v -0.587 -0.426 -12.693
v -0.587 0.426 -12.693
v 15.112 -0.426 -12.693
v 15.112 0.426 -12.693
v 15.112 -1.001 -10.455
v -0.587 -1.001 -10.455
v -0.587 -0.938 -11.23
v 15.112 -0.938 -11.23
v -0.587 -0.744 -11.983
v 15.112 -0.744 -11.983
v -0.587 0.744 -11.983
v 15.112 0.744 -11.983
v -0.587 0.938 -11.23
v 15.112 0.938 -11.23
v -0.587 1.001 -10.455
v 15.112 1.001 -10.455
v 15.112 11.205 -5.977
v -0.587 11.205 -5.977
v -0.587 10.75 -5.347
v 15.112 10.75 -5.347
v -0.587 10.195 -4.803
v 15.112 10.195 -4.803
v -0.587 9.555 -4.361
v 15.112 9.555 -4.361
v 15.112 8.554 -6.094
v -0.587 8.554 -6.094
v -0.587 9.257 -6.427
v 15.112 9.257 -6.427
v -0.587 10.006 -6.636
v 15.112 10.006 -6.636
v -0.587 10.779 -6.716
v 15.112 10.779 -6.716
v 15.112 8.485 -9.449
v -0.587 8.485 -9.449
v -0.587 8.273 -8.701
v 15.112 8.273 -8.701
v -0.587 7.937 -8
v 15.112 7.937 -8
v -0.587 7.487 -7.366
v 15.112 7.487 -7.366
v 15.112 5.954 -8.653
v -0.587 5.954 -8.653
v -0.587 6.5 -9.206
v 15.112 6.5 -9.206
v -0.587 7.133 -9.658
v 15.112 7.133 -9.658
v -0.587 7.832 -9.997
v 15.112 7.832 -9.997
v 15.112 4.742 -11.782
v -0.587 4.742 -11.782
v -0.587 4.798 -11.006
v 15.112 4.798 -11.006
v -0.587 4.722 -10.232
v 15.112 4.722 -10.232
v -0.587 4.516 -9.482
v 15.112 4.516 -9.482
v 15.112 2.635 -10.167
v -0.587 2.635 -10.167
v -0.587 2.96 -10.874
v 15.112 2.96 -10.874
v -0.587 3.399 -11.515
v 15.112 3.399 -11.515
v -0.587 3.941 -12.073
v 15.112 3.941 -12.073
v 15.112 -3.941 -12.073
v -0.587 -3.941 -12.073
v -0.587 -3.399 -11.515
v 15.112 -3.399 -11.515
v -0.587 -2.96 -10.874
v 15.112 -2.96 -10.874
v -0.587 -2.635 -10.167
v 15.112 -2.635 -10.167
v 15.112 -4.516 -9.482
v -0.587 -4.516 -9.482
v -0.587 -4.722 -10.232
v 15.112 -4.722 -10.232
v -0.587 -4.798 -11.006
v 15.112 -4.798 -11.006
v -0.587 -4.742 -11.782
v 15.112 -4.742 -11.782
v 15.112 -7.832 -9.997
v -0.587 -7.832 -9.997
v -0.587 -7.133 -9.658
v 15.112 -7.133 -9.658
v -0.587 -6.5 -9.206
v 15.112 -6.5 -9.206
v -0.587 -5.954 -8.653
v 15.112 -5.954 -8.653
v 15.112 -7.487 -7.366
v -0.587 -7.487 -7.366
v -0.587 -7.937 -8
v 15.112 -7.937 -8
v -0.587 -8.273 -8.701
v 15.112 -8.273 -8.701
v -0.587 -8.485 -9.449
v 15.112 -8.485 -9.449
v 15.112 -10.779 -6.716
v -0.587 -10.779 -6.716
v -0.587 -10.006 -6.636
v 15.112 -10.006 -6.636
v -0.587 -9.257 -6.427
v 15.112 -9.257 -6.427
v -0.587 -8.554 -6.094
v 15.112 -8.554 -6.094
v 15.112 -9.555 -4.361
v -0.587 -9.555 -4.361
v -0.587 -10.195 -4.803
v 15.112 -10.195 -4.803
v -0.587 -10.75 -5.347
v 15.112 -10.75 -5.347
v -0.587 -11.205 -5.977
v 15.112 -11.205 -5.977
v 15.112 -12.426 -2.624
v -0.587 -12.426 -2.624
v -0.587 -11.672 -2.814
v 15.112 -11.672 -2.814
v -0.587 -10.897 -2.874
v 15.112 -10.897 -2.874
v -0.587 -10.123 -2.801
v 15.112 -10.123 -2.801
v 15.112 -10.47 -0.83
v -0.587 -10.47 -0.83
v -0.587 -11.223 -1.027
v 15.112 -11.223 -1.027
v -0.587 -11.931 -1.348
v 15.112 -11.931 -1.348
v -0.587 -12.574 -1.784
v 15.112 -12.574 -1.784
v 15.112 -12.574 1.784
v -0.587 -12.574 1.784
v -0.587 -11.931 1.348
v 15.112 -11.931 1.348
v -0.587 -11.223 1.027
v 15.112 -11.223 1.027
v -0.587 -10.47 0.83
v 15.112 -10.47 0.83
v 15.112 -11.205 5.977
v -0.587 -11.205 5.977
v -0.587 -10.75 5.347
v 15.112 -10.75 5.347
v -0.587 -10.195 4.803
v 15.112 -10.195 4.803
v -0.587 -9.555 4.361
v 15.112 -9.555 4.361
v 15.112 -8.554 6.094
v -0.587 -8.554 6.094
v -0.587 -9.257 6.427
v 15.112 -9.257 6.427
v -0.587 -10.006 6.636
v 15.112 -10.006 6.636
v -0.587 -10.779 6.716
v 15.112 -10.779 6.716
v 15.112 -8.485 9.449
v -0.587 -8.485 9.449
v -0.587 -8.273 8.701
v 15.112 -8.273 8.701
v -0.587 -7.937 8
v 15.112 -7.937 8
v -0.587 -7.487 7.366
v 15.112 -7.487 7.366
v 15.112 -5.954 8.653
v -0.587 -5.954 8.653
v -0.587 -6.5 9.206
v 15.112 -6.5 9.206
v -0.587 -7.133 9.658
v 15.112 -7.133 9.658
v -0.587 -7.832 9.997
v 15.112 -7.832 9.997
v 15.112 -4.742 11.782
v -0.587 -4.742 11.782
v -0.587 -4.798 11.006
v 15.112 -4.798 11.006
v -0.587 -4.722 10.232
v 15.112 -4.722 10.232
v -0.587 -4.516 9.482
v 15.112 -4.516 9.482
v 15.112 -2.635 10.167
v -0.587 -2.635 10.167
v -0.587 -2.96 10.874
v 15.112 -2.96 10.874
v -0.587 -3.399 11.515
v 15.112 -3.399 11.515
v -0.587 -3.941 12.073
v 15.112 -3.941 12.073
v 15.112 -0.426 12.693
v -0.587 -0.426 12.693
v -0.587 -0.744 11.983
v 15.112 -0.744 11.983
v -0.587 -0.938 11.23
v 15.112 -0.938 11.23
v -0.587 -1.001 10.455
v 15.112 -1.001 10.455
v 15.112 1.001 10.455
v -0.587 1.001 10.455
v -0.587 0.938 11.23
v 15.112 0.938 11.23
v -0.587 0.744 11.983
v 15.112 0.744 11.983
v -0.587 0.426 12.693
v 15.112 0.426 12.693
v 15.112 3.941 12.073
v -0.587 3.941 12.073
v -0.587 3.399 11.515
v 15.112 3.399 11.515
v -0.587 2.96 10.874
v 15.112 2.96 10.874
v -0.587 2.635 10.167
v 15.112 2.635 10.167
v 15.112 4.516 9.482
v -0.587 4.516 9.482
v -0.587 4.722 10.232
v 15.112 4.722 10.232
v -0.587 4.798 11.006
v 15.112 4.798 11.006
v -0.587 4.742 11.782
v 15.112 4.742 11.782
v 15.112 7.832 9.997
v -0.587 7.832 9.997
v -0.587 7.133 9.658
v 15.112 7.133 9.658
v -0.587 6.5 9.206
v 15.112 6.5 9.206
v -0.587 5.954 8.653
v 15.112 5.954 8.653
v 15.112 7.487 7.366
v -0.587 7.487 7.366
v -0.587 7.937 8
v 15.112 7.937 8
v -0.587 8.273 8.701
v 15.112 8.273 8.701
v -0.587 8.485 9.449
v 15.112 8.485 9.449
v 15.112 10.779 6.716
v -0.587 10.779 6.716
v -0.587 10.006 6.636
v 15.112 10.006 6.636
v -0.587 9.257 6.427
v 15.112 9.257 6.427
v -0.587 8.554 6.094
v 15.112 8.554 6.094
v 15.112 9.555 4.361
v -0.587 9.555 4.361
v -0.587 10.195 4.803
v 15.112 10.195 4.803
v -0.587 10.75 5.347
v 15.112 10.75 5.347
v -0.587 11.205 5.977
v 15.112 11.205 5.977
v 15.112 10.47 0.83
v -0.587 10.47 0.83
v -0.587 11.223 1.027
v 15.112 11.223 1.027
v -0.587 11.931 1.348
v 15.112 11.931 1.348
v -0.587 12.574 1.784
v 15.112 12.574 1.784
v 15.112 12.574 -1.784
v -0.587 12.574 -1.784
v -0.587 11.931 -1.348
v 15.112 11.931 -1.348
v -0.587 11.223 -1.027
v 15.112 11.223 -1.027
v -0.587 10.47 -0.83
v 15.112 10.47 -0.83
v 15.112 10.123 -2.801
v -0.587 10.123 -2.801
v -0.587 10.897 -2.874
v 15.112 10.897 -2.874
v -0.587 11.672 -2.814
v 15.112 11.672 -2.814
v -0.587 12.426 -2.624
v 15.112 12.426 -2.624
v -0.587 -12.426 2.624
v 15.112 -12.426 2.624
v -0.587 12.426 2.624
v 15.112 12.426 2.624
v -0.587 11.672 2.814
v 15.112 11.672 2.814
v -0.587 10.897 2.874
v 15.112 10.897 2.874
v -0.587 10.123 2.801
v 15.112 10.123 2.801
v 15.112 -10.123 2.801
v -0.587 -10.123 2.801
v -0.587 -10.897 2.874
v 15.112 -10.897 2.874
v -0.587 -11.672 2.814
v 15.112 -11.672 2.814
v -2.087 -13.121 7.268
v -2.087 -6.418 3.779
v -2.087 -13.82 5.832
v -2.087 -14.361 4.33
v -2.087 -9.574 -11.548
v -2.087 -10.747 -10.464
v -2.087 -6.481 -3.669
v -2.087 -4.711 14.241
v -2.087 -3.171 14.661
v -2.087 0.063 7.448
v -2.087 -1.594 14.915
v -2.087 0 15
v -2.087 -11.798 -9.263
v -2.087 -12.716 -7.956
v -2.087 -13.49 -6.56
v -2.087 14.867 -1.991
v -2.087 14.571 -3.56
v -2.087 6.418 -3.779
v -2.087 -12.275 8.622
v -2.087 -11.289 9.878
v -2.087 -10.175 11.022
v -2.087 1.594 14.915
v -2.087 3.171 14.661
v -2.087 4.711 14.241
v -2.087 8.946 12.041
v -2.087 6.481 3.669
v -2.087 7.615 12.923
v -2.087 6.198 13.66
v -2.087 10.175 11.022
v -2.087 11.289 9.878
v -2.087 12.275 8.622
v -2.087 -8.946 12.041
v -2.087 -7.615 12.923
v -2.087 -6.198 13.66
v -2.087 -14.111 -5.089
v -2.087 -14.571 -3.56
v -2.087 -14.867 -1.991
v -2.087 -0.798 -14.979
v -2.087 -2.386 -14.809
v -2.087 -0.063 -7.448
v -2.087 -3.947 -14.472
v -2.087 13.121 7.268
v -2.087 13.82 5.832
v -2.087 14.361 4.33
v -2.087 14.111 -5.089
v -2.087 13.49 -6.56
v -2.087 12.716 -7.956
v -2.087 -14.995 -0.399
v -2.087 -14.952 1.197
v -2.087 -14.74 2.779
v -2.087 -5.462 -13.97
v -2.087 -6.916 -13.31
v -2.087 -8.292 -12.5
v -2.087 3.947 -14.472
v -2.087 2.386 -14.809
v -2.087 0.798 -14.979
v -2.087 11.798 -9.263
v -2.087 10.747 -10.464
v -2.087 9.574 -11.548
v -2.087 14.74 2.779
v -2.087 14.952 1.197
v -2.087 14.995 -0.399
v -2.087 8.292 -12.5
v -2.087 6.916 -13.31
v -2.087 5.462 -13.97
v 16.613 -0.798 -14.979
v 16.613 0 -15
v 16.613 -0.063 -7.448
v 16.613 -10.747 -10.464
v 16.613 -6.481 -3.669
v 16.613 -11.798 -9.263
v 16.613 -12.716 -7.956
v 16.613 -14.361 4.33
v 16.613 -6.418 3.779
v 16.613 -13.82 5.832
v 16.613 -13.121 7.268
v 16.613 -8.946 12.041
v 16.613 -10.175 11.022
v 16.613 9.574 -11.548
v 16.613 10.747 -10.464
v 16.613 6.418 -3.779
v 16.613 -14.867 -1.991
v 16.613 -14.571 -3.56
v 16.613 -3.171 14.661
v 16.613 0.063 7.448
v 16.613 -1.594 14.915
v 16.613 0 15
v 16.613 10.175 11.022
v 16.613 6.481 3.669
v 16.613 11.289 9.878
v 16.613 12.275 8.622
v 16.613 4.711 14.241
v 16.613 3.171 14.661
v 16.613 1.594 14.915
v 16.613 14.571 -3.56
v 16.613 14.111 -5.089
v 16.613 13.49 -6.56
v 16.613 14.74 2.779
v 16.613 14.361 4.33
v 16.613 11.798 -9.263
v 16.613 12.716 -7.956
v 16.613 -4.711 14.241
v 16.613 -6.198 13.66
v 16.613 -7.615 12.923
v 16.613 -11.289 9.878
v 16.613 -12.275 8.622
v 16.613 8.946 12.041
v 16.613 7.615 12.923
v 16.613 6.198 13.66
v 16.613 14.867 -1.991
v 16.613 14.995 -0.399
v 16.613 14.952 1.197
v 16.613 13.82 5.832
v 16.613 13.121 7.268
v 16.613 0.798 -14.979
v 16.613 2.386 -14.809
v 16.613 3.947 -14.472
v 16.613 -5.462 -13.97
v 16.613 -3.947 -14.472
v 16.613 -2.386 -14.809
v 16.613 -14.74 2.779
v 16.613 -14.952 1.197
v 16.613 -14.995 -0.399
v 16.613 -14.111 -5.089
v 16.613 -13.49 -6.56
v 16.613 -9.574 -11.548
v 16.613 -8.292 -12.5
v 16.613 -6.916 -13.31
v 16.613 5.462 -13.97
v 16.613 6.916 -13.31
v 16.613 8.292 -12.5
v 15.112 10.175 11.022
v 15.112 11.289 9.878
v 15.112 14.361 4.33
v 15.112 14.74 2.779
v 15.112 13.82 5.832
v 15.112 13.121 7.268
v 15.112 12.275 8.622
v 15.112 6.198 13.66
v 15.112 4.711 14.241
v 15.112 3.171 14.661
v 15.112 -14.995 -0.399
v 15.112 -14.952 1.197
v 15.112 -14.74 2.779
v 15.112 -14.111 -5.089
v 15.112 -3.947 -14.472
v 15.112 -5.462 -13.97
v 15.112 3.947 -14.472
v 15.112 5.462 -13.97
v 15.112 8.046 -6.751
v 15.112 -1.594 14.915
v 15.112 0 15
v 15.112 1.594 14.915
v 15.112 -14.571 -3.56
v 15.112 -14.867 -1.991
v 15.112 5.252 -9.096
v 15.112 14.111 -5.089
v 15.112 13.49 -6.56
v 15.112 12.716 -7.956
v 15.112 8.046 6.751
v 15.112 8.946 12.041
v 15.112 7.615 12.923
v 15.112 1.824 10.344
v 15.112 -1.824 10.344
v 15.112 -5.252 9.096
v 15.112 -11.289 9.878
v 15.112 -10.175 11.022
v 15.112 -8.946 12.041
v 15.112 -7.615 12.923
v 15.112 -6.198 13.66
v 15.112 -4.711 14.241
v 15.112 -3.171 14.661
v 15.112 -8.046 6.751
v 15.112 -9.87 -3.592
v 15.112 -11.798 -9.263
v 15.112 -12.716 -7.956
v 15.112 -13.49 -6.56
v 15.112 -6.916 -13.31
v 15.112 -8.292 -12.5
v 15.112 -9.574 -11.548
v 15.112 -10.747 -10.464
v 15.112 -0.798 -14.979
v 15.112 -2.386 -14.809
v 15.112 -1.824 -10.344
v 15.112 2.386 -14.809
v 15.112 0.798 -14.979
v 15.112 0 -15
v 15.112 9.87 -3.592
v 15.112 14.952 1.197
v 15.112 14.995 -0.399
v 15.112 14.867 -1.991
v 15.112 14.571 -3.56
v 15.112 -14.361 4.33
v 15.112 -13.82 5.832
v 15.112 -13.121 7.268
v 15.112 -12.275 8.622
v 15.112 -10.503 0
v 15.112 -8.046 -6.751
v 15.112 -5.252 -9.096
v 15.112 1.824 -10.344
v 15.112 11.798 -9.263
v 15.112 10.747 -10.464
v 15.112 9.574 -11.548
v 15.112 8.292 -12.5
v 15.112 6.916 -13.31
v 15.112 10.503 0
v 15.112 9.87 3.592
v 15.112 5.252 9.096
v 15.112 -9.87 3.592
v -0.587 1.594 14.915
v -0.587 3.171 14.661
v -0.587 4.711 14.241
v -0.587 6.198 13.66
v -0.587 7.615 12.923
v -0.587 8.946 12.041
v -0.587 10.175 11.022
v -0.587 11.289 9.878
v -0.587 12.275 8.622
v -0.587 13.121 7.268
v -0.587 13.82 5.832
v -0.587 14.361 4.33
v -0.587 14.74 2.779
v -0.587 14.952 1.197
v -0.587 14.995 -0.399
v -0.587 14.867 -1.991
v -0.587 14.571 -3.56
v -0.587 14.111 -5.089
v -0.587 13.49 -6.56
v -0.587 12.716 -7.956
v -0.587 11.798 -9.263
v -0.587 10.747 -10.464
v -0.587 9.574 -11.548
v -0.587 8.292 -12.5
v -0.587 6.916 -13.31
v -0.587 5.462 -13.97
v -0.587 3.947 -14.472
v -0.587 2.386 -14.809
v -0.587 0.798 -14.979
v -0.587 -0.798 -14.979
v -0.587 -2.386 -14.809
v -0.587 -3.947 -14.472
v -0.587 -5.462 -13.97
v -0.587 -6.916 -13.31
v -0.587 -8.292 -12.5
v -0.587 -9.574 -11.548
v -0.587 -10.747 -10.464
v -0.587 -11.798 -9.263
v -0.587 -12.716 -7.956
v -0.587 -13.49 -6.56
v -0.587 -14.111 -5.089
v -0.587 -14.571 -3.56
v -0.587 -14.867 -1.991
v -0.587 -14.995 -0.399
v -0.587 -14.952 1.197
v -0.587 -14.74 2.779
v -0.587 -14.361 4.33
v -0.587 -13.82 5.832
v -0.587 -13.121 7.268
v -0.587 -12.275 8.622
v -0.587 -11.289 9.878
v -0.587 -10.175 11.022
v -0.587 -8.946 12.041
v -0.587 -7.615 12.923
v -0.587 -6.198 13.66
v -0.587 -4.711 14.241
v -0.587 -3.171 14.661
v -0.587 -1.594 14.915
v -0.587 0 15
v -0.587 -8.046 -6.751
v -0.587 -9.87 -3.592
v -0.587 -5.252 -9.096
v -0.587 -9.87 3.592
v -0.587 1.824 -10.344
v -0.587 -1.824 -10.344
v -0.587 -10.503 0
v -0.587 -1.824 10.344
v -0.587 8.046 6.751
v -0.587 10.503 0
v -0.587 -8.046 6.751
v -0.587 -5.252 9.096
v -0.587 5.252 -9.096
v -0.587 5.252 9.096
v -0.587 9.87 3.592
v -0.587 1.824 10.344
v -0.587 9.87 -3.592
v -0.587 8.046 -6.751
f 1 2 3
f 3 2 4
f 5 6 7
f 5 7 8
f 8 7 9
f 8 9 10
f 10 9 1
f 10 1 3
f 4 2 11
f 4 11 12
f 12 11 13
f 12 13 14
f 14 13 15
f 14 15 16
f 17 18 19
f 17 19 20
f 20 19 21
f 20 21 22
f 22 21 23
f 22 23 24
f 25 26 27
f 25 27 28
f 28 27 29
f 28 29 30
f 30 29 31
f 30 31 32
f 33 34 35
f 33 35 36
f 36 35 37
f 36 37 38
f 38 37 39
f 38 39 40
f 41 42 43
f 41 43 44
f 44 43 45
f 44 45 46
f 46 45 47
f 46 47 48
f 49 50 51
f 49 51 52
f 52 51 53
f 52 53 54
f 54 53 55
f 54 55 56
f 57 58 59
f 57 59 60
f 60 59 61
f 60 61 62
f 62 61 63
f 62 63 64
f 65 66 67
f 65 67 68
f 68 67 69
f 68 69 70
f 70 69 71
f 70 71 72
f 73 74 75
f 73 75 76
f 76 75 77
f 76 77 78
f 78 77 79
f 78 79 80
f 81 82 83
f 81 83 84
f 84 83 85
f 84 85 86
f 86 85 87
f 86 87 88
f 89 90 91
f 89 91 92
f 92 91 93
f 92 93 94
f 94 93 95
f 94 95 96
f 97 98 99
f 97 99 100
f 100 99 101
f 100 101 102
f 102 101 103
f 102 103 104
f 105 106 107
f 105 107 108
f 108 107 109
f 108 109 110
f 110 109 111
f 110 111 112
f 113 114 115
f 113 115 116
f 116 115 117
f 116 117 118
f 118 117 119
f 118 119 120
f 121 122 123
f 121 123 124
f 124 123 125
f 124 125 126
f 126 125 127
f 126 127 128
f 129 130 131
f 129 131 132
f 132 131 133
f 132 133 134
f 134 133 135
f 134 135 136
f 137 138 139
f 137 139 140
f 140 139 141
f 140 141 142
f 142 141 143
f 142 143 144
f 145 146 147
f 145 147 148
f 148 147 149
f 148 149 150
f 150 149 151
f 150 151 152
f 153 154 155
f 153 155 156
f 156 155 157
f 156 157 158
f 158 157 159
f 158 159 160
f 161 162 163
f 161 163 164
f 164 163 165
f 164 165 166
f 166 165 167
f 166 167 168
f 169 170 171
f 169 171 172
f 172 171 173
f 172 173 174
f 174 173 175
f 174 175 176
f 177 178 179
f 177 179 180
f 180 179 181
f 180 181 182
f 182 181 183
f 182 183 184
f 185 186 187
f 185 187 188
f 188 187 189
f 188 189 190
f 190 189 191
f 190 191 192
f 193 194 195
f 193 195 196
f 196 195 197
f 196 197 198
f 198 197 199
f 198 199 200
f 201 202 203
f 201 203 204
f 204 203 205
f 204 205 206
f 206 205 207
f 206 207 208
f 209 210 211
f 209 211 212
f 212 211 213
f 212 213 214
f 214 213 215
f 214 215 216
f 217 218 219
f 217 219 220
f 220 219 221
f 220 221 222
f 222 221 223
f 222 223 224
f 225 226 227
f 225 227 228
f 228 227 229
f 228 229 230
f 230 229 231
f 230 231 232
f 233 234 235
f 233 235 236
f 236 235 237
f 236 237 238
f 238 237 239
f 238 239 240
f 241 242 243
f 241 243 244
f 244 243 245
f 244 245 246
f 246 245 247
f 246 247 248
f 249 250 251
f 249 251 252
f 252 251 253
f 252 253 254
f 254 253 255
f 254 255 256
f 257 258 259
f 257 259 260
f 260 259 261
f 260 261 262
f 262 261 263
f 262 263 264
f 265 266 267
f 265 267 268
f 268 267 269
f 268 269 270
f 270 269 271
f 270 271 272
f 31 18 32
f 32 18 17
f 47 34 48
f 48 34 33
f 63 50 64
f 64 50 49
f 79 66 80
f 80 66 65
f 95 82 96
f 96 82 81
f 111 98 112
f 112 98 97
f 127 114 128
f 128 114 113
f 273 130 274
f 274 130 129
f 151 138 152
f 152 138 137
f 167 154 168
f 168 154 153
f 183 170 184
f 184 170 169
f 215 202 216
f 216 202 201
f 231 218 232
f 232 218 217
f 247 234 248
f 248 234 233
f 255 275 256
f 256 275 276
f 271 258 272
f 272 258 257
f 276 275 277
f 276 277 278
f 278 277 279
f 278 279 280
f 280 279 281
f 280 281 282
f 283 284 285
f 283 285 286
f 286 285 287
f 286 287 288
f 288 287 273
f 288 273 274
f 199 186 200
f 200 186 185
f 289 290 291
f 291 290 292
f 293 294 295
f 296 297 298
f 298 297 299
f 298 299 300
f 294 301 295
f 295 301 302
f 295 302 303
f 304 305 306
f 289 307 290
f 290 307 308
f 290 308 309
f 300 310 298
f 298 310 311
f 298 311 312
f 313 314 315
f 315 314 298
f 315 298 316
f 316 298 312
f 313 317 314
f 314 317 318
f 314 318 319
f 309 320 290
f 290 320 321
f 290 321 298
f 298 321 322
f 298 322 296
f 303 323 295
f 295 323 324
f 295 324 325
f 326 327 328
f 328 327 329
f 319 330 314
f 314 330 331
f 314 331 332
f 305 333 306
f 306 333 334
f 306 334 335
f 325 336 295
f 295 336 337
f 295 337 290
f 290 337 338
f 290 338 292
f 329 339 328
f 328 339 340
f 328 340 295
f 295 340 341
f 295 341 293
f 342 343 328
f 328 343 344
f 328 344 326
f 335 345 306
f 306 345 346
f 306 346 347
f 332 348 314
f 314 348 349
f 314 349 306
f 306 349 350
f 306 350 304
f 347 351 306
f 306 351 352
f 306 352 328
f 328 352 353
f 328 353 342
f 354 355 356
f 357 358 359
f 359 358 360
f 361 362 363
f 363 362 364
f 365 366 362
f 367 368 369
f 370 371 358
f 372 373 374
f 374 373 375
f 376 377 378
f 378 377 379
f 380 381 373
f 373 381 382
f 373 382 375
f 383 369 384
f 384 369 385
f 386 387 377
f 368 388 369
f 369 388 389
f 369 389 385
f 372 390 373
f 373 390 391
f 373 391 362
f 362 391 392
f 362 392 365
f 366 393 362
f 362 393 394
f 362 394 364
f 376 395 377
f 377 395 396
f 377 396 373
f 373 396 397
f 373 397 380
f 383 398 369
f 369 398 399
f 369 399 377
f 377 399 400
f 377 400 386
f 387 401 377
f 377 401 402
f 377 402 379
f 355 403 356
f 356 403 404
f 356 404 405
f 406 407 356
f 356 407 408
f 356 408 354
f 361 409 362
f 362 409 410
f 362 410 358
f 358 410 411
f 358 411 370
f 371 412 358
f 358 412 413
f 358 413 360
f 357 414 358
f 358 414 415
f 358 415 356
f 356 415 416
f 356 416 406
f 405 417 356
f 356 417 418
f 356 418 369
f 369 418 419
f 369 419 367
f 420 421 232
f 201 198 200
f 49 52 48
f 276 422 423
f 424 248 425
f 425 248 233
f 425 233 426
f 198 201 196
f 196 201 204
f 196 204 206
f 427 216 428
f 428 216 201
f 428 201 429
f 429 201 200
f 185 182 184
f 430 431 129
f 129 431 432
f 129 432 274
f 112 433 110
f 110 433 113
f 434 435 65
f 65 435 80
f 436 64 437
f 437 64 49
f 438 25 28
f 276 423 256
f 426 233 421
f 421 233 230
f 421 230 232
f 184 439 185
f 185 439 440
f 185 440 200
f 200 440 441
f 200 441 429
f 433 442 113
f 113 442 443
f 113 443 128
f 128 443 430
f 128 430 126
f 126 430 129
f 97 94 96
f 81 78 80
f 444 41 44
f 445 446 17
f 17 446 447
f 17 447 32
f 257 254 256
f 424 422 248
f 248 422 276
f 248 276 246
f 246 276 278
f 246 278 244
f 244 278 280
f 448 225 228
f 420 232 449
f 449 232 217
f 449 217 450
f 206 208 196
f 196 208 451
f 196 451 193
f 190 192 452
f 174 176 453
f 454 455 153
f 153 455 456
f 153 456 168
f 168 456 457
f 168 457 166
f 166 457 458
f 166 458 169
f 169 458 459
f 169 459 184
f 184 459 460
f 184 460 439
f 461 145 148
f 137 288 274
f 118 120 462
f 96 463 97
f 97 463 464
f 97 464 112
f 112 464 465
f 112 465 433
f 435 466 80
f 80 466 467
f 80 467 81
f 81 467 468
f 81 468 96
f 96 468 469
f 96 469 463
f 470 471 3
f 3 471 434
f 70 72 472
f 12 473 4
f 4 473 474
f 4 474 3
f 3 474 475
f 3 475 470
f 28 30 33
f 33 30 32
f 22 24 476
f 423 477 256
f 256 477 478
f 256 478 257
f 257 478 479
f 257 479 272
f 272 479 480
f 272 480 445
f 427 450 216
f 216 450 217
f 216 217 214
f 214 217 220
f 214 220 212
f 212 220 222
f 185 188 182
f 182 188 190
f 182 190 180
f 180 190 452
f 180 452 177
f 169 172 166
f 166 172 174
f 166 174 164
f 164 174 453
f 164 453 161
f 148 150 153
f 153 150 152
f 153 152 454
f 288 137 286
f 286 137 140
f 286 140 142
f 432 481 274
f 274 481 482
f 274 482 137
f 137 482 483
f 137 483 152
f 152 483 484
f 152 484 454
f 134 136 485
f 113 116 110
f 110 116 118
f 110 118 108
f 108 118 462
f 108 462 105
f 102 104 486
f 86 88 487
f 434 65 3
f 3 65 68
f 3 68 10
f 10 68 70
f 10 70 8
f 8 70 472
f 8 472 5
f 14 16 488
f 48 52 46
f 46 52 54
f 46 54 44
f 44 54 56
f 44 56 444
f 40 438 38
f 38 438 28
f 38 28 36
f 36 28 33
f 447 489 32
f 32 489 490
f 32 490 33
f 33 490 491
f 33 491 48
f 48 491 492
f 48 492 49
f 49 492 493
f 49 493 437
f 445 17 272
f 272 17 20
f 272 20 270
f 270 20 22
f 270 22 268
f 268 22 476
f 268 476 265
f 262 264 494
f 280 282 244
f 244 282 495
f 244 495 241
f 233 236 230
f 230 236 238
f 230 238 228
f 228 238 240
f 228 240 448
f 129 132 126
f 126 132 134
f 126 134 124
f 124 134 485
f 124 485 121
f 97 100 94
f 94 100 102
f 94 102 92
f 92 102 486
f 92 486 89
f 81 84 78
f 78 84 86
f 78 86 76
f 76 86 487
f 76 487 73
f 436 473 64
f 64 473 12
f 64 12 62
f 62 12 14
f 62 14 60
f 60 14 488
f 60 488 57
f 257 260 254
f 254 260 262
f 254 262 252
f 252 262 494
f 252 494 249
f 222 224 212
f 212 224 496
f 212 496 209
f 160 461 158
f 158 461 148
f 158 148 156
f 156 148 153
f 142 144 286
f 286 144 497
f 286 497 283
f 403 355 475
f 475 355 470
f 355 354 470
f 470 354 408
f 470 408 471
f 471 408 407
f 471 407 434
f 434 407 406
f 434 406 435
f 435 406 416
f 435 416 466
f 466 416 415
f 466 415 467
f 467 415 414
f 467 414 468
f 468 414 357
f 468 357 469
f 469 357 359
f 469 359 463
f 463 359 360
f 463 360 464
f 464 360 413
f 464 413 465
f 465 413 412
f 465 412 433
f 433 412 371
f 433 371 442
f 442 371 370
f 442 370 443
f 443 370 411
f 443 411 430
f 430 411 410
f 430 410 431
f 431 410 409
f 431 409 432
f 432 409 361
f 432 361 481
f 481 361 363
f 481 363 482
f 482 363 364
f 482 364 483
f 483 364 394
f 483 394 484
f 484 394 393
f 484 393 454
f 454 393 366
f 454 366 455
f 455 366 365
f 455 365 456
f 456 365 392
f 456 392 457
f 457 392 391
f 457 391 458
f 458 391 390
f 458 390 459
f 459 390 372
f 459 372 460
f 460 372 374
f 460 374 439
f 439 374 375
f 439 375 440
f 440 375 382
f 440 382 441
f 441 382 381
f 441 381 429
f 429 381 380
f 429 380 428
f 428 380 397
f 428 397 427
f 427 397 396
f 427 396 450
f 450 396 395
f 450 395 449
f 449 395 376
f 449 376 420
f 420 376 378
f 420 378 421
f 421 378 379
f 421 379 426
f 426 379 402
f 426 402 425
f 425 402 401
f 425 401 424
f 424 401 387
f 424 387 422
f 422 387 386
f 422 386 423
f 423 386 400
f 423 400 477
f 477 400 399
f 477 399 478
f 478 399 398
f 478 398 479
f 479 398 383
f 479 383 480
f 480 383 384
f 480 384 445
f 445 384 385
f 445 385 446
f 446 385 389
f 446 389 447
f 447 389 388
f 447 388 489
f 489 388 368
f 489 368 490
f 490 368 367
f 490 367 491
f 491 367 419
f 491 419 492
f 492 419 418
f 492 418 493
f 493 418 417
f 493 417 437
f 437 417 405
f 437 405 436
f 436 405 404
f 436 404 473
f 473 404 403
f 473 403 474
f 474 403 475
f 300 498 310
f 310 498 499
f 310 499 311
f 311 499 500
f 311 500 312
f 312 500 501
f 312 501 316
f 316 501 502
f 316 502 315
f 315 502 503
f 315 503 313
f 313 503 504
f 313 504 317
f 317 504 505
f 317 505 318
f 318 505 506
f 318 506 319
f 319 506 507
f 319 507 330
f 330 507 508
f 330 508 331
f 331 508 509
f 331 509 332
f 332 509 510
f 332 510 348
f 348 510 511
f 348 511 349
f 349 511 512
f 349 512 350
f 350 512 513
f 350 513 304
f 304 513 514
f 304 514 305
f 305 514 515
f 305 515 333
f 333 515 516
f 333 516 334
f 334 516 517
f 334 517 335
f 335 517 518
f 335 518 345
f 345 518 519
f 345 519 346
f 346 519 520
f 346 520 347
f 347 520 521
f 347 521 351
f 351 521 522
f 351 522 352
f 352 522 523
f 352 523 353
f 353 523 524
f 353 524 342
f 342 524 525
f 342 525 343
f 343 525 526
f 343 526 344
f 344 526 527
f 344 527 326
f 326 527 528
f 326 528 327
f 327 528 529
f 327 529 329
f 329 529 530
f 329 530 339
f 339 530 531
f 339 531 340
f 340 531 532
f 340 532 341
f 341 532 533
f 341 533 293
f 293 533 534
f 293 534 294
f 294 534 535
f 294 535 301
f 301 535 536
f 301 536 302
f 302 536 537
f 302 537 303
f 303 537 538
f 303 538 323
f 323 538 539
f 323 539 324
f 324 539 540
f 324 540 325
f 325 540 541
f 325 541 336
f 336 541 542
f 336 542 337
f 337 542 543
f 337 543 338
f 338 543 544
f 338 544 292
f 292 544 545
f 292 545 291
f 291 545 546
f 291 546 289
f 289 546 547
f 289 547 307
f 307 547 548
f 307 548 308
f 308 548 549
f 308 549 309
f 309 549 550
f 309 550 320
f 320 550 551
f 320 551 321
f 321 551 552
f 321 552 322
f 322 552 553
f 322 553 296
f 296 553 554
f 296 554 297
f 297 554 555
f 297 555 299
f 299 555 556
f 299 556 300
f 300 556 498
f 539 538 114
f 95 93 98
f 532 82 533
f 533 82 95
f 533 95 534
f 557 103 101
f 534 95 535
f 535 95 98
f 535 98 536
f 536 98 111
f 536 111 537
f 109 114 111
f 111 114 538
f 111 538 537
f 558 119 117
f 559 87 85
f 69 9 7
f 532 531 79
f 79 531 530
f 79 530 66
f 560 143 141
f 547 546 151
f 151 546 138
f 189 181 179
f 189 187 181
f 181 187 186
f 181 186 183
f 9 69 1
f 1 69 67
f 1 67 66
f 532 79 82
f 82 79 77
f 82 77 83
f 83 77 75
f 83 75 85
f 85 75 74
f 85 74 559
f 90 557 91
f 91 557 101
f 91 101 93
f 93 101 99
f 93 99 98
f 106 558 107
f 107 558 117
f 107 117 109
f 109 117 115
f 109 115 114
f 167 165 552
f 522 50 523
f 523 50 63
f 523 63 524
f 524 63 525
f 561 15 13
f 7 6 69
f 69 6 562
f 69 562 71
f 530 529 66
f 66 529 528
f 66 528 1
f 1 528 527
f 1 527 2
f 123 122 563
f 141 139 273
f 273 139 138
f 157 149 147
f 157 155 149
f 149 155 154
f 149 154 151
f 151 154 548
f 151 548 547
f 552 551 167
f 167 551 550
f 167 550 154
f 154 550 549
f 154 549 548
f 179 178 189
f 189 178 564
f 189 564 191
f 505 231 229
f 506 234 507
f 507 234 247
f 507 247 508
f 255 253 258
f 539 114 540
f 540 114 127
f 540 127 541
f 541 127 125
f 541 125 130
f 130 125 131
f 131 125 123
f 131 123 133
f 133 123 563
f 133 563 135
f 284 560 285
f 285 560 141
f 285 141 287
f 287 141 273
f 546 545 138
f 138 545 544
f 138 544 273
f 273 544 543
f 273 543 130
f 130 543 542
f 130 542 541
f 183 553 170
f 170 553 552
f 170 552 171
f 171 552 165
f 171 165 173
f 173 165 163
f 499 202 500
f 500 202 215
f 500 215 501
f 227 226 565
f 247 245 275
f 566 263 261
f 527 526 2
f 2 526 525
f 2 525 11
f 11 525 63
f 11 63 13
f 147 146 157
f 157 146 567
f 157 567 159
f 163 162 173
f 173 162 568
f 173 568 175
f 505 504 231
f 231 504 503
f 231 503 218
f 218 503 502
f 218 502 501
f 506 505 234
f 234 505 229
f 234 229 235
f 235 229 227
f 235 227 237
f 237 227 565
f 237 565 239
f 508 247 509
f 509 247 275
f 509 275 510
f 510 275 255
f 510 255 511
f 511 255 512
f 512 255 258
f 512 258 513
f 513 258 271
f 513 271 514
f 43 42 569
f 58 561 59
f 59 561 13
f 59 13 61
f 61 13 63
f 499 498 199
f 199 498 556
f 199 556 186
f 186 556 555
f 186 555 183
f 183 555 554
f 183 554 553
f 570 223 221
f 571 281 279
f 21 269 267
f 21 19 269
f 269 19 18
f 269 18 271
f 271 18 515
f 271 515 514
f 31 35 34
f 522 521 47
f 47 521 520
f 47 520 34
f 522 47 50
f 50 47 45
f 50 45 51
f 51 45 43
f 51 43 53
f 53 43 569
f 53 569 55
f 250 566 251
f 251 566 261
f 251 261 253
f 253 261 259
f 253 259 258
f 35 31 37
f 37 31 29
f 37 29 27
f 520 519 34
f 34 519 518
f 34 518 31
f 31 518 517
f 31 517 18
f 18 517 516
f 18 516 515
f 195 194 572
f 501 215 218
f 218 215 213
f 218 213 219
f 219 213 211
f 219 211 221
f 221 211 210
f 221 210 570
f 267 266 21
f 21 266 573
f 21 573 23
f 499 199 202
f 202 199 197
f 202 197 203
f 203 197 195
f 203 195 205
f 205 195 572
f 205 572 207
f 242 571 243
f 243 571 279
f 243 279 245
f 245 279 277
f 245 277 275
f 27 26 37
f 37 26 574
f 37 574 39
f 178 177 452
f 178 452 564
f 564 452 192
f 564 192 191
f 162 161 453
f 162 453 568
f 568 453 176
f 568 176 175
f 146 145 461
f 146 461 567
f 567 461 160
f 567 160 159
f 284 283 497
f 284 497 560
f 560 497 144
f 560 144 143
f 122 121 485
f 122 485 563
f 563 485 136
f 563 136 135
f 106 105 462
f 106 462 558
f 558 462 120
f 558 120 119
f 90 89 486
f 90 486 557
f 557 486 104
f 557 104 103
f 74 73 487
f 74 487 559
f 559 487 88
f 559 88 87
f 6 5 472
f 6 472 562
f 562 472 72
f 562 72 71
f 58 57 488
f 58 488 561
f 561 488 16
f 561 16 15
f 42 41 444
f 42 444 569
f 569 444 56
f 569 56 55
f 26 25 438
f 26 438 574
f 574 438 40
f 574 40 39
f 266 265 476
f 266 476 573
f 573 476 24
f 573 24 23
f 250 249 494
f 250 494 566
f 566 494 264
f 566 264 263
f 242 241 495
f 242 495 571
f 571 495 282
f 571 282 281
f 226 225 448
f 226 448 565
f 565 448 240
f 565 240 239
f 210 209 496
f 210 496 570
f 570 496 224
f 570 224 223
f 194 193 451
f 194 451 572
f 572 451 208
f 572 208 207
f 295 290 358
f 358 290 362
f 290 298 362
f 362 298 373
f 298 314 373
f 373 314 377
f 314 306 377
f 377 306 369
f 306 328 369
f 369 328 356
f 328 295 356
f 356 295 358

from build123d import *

# Parameters (mm, degrees)
BOSS_EXTRUDE1_DEPTH      = 4
BOSS_EXTRUDE1_DEPTH_BACK = 13.2
SKETCH2_R                = 15
SKETCH2_R_2              = 7.854644271
BOSS_EXTRUDE2_DEPTH      = 1.5
SKETCH3_R                = 15
SKETCH3_R_2              = 9.60106287
BOSS_EXTRUDE3_DEPTH      = 1.5
BOSS_EXTRUDE4_DEPTH      = 1.5
BOSS_EXTRUDE4_DEPTH_BACK = 16.7
SKETCH5_R                = 10.503090292
CUT_EXTRUDE1_DEPTH       = 29.278790639


# Read off the part's stored shape, not the designer's step: am-4212 18T 20DP 500hex 375 FW.STEP<1>
with BuildPart() as part:
    # Sketch1 → Boss-Extrude1 (new, two sides: drawn at the far end of the back side and taken through both)
    # profile 1 of 19: a face of its own
    with BuildSketch(Plane(origin=(11.1125, 0, 0), x_dir=(0, 0, -1), z_dir=(1, 0, 0)).offset(-BOSS_EXTRUDE1_DEPTH_BACK)):
        with BuildLine():
            ThreePointArc((-12.692845514, 0.426230867), (-12.7, 0), (-12.692845514, -0.426230867))
            ThreePointArc((-12.692845514, -0.426230867), (-12.311027604, -0.61546759), (-11.913249275, -0.768333072))
            ThreePointArc((-11.913249275, -0.768333072), (-11.938, 0), (-11.913249275, 0.768333072))
            ThreePointArc((-11.913249275, 0.768333072), (-12.311027604, 0.61546759), (-12.692845514, 0.426230867))
        make_face()
    # profile 2 of 19: a face of its own
    with BuildSketch(Plane(origin=(11.1125, 0, 0), x_dir=(0, 0, -1), z_dir=(1, 0, 0)).offset(-BOSS_EXTRUDE1_DEPTH_BACK)):
        with BuildLine():
            ThreePointArc((-11.913249275, 0.768333072), (-11.938, 0), (-11.913249275, -0.768333072))
            ThreePointArc((-11.913249275, -0.768333072), (-10.87193442, -0.983463934), (-9.809087715, -0.952242218))
            ThreePointArc((-9.809087715, -0.952242218), (-9.705477367, -1.711337521), (-9.543213362, -2.4600906))
            ThreePointArc((-9.543213362, -2.4600906), (-10.552641024, -2.794266767), (-11.457577821, -3.352574307))
            ThreePointArc((-11.457577821, -3.352574307), (-11.218050507, -4.083036471), (-10.932007046, -4.796568142))
            ThreePointArc((-10.932007046, -4.796568142), (-9.879912073, -4.64257437), (-8.891841322, -4.249720572))
            ThreePointArc((-8.891841322, -4.249720572), (-8.534853559, -4.9276), (-8.126286635, -5.575700185))
            ThreePointArc((-8.126286635, -5.575700185), (-8.96054338, -6.234967657), (-9.619953385, -7.069111745))
            ThreePointArc((-9.619953385, -7.069111745), (-9.145038562, -7.673598484), (-8.632203428, -8.246266305))
            ThreePointArc((-8.632203428, -8.246266305), (-7.696226517, -7.74172182), (-6.902107637, -7.034619905))
            ThreePointArc((-6.902107637, -7.034619905), (-6.334800451, -7.549521196), (-5.729209809, -8.01879804))
            ThreePointArc((-5.729209809, -8.01879804), (-6.287671961, -8.923639429), (-6.622020596, -9.933009978))
            ThreePointArc((-6.622020596, -9.933009978), (-5.969, -10.33861127), (-5.291228679, -10.70134305))
            ThreePointArc((-5.291228679, -10.70134305), (-4.58426246, -9.907103363), (-4.079877906, -8.971040258))
            ThreePointArc((-4.079877906, -8.971040258), (-3.370676917, -9.260858716), (-2.641105726, -9.494710506))
            ThreePointArc((-2.641105726, -9.494710506), (-2.856414507, -10.535988587), (-2.825374393, -11.598840612))
            ThreePointArc((-2.825374393, -11.598840612), (-2.073011945, -11.756634955), (-1.312053661, -11.865679887))
            ThreePointArc((-1.312053661, -11.865679887), (-0.919368693, -10.877542027), (-0.765554687, -9.825420757))
            ThreePointArc((-0.765554687, -9.825420757), (0, -9.8552), (0.765554687, -9.825420757))
            ThreePointArc((0.765554687, -9.825420757), (0.919368693, -10.877542027), (1.312053661, -11.865679887))
            ThreePointArc((1.312053661, -11.865679887), (2.073011945, -11.756634955), (2.825374393, -11.598840612))
            ThreePointArc((2.825374393, -11.598840612), (2.856414507, -10.535988587), (2.641105726, -9.494710506))
            ThreePointArc((2.641105726, -9.494710506), (3.370676917, -9.260858716), (4.079877906, -8.971040258))
            ThreePointArc((4.079877906, -8.971040258), (4.58426246, -9.907103363), (5.291228679, -10.70134305))
            ThreePointArc((5.291228679, -10.70134305), (5.969, -10.33861127), (6.622020596, -9.933009978))
            ThreePointArc((6.622020596, -9.933009978), (6.287671961, -8.923639429), (5.729209809, -8.01879804))
            ThreePointArc((5.729209809, -8.01879804), (6.334800451, -7.549521196), (6.902107637, -7.034619905))
            ThreePointArc((6.902107637, -7.034619905), (7.696226517, -7.74172182), (8.632203428, -8.246266305))
            ThreePointArc((8.632203428, -8.246266305), (9.145038562, -7.673598484), (9.619953385, -7.069111745))
            ThreePointArc((9.619953385, -7.069111745), (8.96054338, -6.234967657), (8.126286635, -5.575700185))
            ThreePointArc((8.126286635, -5.575700185), (8.534853559, -4.9276), (8.891841322, -4.249720572))
            ThreePointArc((8.891841322, -4.249720572), (9.879912073, -4.64257437), (10.932007046, -4.796568142))
            ThreePointArc((10.932007046, -4.796568142), (11.218050507, -4.083036471), (11.457577821, -3.352574307))
            ThreePointArc((11.457577821, -3.352574307), (10.552641024, -2.794266767), (9.543213362, -2.4600906))
            ThreePointArc((9.543213362, -2.4600906), (9.705477367, -1.711337521), (9.809087715, -0.952242218))
            ThreePointArc((9.809087715, -0.952242218), (10.87193442, -0.983463934), (11.913249275, -0.768333072))
            ThreePointArc((11.913249275, -0.768333072), (11.938, 0), (11.913249275, 0.768333072))
            ThreePointArc((11.913249275, 0.768333072), (10.87193442, 0.983463934), (9.809087715, 0.952242218))
            ThreePointArc((9.809087715, 0.952242218), (9.705477367, 1.711337521), (9.543213362, 2.4600906))
            ThreePointArc((9.543213362, 2.4600906), (10.552641024, 2.794266767), (11.457577821, 3.352574307))
            ThreePointArc((11.457577821, 3.352574307), (11.218050507, 4.083036471), (10.932007046, 4.796568142))
            ThreePointArc((10.932007046, 4.796568142), (9.879912073, 4.64257437), (8.891841322, 4.249720572))
            ThreePointArc((8.891841322, 4.249720572), (8.534853559, 4.9276), (8.126286635, 5.575700185))
            ThreePointArc((8.126286635, 5.575700185), (8.96054338, 6.234967657), (9.619953385, 7.069111745))
            ThreePointArc((9.619953385, 7.069111745), (9.145038562, 7.673598484), (8.632203428, 8.246266305))
            ThreePointArc((8.632203428, 8.246266305), (7.696226517, 7.74172182), (6.902107637, 7.034619905))
            ThreePointArc((6.902107637, 7.034619905), (6.334800451, 7.549521196), (5.729209809, 8.01879804))
            ThreePointArc((5.729209809, 8.01879804), (6.287671961, 8.923639429), (6.622020596, 9.933009978))
            ThreePointArc((6.622020596, 9.933009978), (5.969, 10.33861127), (5.291228679, 10.70134305))
            ThreePointArc((5.291228679, 10.70134305), (4.58426246, 9.907103363), (4.079877906, 8.971040258))
            ThreePointArc((4.079877906, 8.971040258), (3.370676917, 9.260858716), (2.641105726, 9.494710506))
            ThreePointArc((2.641105726, 9.494710506), (2.856414507, 10.535988587), (2.825374393, 11.598840612))
            ThreePointArc((2.825374393, 11.598840612), (2.073011945, 11.756634955), (1.312053661, 11.865679887))
            ThreePointArc((1.312053661, 11.865679887), (0.919368693, 10.877542027), (0.765554687, 9.825420757))
            ThreePointArc((0.765554687, 9.825420757), (0, 9.8552), (-0.765554687, 9.825420757))
            ThreePointArc((-0.765554687, 9.825420757), (-0.919368693, 10.877542027), (-1.312053661, 11.865679887))
            ThreePointArc((-1.312053661, 11.865679887), (-2.073011945, 11.756634955), (-2.825374393, 11.598840612))
            ThreePointArc((-2.825374393, 11.598840612), (-2.856414507, 10.535988587), (-2.641105726, 9.494710506))
            ThreePointArc((-2.641105726, 9.494710506), (-3.370676917, 9.260858716), (-4.079877906, 8.971040258))
            ThreePointArc((-4.079877906, 8.971040258), (-4.58426246, 9.907103363), (-5.291228679, 10.70134305))
            ThreePointArc((-5.291228679, 10.70134305), (-5.969, 10.33861127), (-6.622020596, 9.933009978))
            ThreePointArc((-6.622020596, 9.933009978), (-6.287671961, 8.923639429), (-5.729209809, 8.01879804))
            ThreePointArc((-5.729209809, 8.01879804), (-6.334800451, 7.549521196), (-6.902107637, 7.034619905))
            ThreePointArc((-6.902107637, 7.034619905), (-7.696226517, 7.74172182), (-8.632203428, 8.246266305))
            ThreePointArc((-8.632203428, 8.246266305), (-9.145038562, 7.673598484), (-9.619953385, 7.069111745))
            ThreePointArc((-9.619953385, 7.069111745), (-8.96054338, 6.234967657), (-8.126286635, 5.575700185))
            ThreePointArc((-8.126286635, 5.575700185), (-8.534853559, 4.9276), (-8.891841322, 4.249720572))
            ThreePointArc((-8.891841322, 4.249720572), (-9.879912073, 4.64257437), (-10.932007046, 4.796568142))
            ThreePointArc((-10.932007046, 4.796568142), (-11.218050507, 4.083036471), (-11.457577821, 3.352574307))
            ThreePointArc((-11.457577821, 3.352574307), (-10.552641024, 2.794266767), (-9.543213362, 2.4600906))
            ThreePointArc((-9.543213362, 2.4600906), (-9.705477367, 1.711337521), (-9.809087715, 0.952242218))
            ThreePointArc((-9.809087715, 0.952242218), (-10.87193442, 0.983463934), (-11.913249275, 0.768333072))
        make_face()
        Polygon((-3.666174209, -6.35), (-7.332348419, 0), (-3.666174209, 6.35), (3.666174209, 6.35), (7.332348419, 0), (3.666174209, -6.35), align=None, mode=Mode.SUBTRACT)
    # profile 3 of 19: a face of its own
    with BuildSketch(Plane(origin=(11.1125, 0, 0), x_dir=(0, 0, -1), z_dir=(1, 0, 0)).offset(-BOSS_EXTRUDE1_DEPTH_BACK)):
        with BuildLine():
            ThreePointArc((-10.932007046, -4.796568142), (-11.218050507, -4.083036471), (-11.457577821, -3.352574307))
            ThreePointArc((-11.457577821, -3.352574307), (-11.779084107, -3.632269073), (-12.073152809, -3.940682842))
            ThreePointArc((-12.073152809, -3.940682842), (-11.934096284, -4.34365582), (-11.781593724, -4.741734842))
            ThreePointArc((-11.781593724, -4.741734842), (-11.35807948, -4.788969778), (-10.932007046, -4.796568142))
        make_face()
    # profile 4 of 19: a face of its own
    with BuildSketch(Plane(origin=(11.1125, 0, 0), x_dir=(0, 0, -1), z_dir=(1, 0, 0)).offset(-BOSS_EXTRUDE1_DEPTH_BACK)):
        with BuildLine():
            ThreePointArc((-12.073152809, 3.940682842), (-11.779084107, 3.632269073), (-11.457577821, 3.352574307))
            ThreePointArc((-11.457577821, 3.352574307), (-11.218050507, 4.083036471), (-10.932007046, 4.796568142))
            ThreePointArc((-10.932007046, 4.796568142), (-11.35807948, 4.788969778), (-11.781593724, 4.741734842))
            ThreePointArc((-11.781593724, 4.741734842), (-11.934096284, 4.34365582), (-12.073152809, 3.940682842))
        make_face()
    # profile 5 of 19: a face of its own
    with BuildSketch(Plane(origin=(11.1125, 0, 0), x_dir=(0, 0, -1), z_dir=(1, 0, 0)).offset(-BOSS_EXTRUDE1_DEPTH_BACK)):
        with BuildLine():
            ThreePointArc((-8.632203428, -8.246266305), (-9.145038562, -7.673598484), (-9.619953385, -7.069111745))
            ThreePointArc((-9.619953385, -7.069111745), (-9.826409226, -7.441900479), (-9.997259693, -7.832292041))
            ThreePointArc((-9.997259693, -7.832292041), (-9.728764428, -8.163402643), (-9.449307854, -8.485315615))
            ThreePointArc((-9.449307854, -8.485315615), (-9.035179344, -8.384851534), (-8.632203428, -8.246266305))
        make_face()
    # profile 6 of 19: a face of its own
    with BuildSketch(Plane(origin=(11.1125, 0, 0), x_dir=(0, 0, -1), z_dir=(1, 0, 0)).offset(-BOSS_EXTRUDE1_DEPTH_BACK)):
        with BuildLine():
            ThreePointArc((-9.997259693, 7.832292041), (-9.826409226, 7.441900479), (-9.619953385, 7.069111745))
            ThreePointArc((-9.619953385, 7.069111745), (-9.145038562, 7.673598484), (-8.632203428, 8.246266305))
            ThreePointArc((-8.632203428, 8.246266305), (-9.035179344, 8.384851534), (-9.449307854, 8.485315615))
            ThreePointArc((-9.449307854, 8.485315615), (-9.728764428, 8.163402643), (-9.997259693, 7.832292041))
        make_face()
    # profile 7 of 19: a face of its own
    with BuildSketch(Plane(origin=(11.1125, 0, 0), x_dir=(0, 0, -1), z_dir=(1, 0, 0)).offset(-BOSS_EXTRUDE1_DEPTH_BACK)):
        with BuildLine():
            ThreePointArc((-5.291228679, -10.70134305), (-5.969, -10.33861127), (-6.622020596, -9.933009978))
            ThreePointArc((-6.622020596, -9.933009978), (-6.68852437, -10.353928857), (-6.715549515, -10.779211228))
            ThreePointArc((-6.715549515, -10.779211228), (-6.35, -10.998522628), (-5.977295999, -11.205442095))
            ThreePointArc((-5.977295999, -11.205442095), (-5.622503234, -10.969396447), (-5.291228679, -10.70134305))
        make_face()
    # profile 8 of 19: a face of its own
    with BuildSketch(Plane(origin=(11.1125, 0, 0), x_dir=(0, 0, -1), z_dir=(1, 0, 0)).offset(-BOSS_EXTRUDE1_DEPTH_BACK)):
        with BuildLine():
            ThreePointArc((-6.715549515, 10.779211228), (-6.68852437, 10.353928857), (-6.622020596, 9.933009978))
            ThreePointArc((-6.622020596, 9.933009978), (-5.969, 10.33861127), (-5.291228679, 10.70134305))
            ThreePointArc((-5.291228679, 10.70134305), (-5.622503234, 10.969396447), (-5.977295999, 11.205442095))
            ThreePointArc((-5.977295999, 11.205442095), (-6.35, 10.998522628), (-6.715549515, 10.779211228))
        make_face()
    # profile 9 of 19: a face of its own
    with BuildSketch(Plane(origin=(11.1125, 0, 0), x_dir=(0, 0, -1), z_dir=(1, 0, 0)).offset(-BOSS_EXTRUDE1_DEPTH_BACK)):
        with BuildLine():
            ThreePointArc((-1.312053661, -11.865679887), (-2.073011945, -11.756634955), (-2.825374393, -11.598840612))
            ThreePointArc((-2.825374393, -11.598840612), (-2.743904763, -12.017120606), (-2.623844955, -12.425998457))
            ThreePointArc((-2.623844955, -12.425998457), (-2.205331856, -12.507058463), (-1.784334031, -12.574026883))
            ThreePointArc((-1.784334031, -12.574026883), (-1.531670254, -12.230870257), (-1.312053661, -11.865679887))
        make_face()
    # profile 10 of 19: a face of its own
    with BuildSketch(Plane(origin=(11.1125, 0, 0), x_dir=(0, 0, -1), z_dir=(1, 0, 0)).offset(-BOSS_EXTRUDE1_DEPTH_BACK)):
        with BuildLine():
            ThreePointArc((-2.623844955, 12.425998457), (-2.743904763, 12.017120606), (-2.825374393, 11.598840612))
            ThreePointArc((-2.825374393, 11.598840612), (-2.073011945, 11.756634955), (-1.312053661, 11.865679887))
            ThreePointArc((-1.312053661, 11.865679887), (-1.531670254, 12.230870257), (-1.784334031, 12.574026883))
            ThreePointArc((-1.784334031, 12.574026883), (-2.205331856, 12.507058463), (-2.623844955, 12.425998457))
        make_face()
    # profile 11 of 19: a face of its own
    with BuildSketch(Plane(origin=(11.1125, 0, 0), x_dir=(0, 0, -1), z_dir=(1, 0, 0)).offset(-BOSS_EXTRUDE1_DEPTH_BACK)):
        with BuildLine():
            ThreePointArc((2.825374393, -11.598840612), (2.073011945, -11.756634955), (1.312053661, -11.865679887))
            ThreePointArc((1.312053661, -11.865679887), (1.531670254, -12.230870257), (1.784334031, -12.574026883))
            ThreePointArc((1.784334031, -12.574026883), (2.205331856, -12.507058463), (2.623844955, -12.425998457))
            ThreePointArc((2.623844955, -12.425998457), (2.743904763, -12.017120606), (2.825374393, -11.598840612))
        make_face()
    # profile 12 of 19: a face of its own
    with BuildSketch(Plane(origin=(11.1125, 0, 0), x_dir=(0, 0, -1), z_dir=(1, 0, 0)).offset(-BOSS_EXTRUDE1_DEPTH_BACK)):
        with BuildLine():
            ThreePointArc((1.784334031, 12.574026883), (1.531670254, 12.230870257), (1.312053661, 11.865679887))
            ThreePointArc((1.312053661, 11.865679887), (2.073011945, 11.756634955), (2.825374393, 11.598840612))
            ThreePointArc((2.825374393, 11.598840612), (2.743904763, 12.017120606), (2.623844955, 12.425998457))
            ThreePointArc((2.623844955, 12.425998457), (2.205331856, 12.507058463), (1.784334031, 12.574026883))
        make_face()
    # profile 13 of 19: a face of its own
    with BuildSketch(Plane(origin=(11.1125, 0, 0), x_dir=(0, 0, -1), z_dir=(1, 0, 0)).offset(-BOSS_EXTRUDE1_DEPTH_BACK)):
        with BuildLine():
            ThreePointArc((6.622020596, -9.933009978), (5.969, -10.33861127), (5.291228679, -10.70134305))
            ThreePointArc((5.291228679, -10.70134305), (5.622503234, -10.969396447), (5.977295999, -11.205442095))
            ThreePointArc((5.977295999, -11.205442095), (6.35, -10.998522628), (6.715549515, -10.779211228))
            ThreePointArc((6.715549515, -10.779211228), (6.68852437, -10.353928857), (6.622020596, -9.933009978))
        make_face()
    # profile 14 of 19: a face of its own
    with BuildSketch(Plane(origin=(11.1125, 0, 0), x_dir=(0, 0, -1), z_dir=(1, 0, 0)).offset(-BOSS_EXTRUDE1_DEPTH_BACK)):
        with BuildLine():
            ThreePointArc((5.977295999, 11.205442095), (5.622503234, 10.969396447), (5.291228679, 10.70134305))
            ThreePointArc((5.291228679, 10.70134305), (5.969, 10.33861127), (6.622020596, 9.933009978))
            ThreePointArc((6.622020596, 9.933009978), (6.68852437, 10.353928857), (6.715549515, 10.779211228))
            ThreePointArc((6.715549515, 10.779211228), (6.35, 10.998522628), (5.977295999, 11.205442095))
        make_face()
    # profile 15 of 19: a face of its own
    with BuildSketch(Plane(origin=(11.1125, 0, 0), x_dir=(0, 0, -1), z_dir=(1, 0, 0)).offset(-BOSS_EXTRUDE1_DEPTH_BACK)):
        with BuildLine():
            ThreePointArc((9.619953385, -7.069111745), (9.145038562, -7.673598484), (8.632203428, -8.246266305))
            ThreePointArc((8.632203428, -8.246266305), (9.035179344, -8.384851534), (9.449307854, -8.485315615))
            ThreePointArc((9.449307854, -8.485315615), (9.728764428, -8.163402643), (9.997259693, -7.832292041))
            ThreePointArc((9.997259693, -7.832292041), (9.826409226, -7.441900479), (9.619953385, -7.069111745))
        make_face()
    # profile 16 of 19: a face of its own
    with BuildSketch(Plane(origin=(11.1125, 0, 0), x_dir=(0, 0, -1), z_dir=(1, 0, 0)).offset(-BOSS_EXTRUDE1_DEPTH_BACK)):
        with BuildLine():
            ThreePointArc((9.449307854, 8.485315615), (9.035179344, 8.384851534), (8.632203428, 8.246266305))
            ThreePointArc((8.632203428, 8.246266305), (9.145038562, 7.673598484), (9.619953385, 7.069111745))
            ThreePointArc((9.619953385, 7.069111745), (9.826409226, 7.441900479), (9.997259693, 7.832292041))
            ThreePointArc((9.997259693, 7.832292041), (9.728764428, 8.163402643), (9.449307854, 8.485315615))
        make_face()
    # profile 17 of 19: a face of its own
    with BuildSketch(Plane(origin=(11.1125, 0, 0), x_dir=(0, 0, -1), z_dir=(1, 0, 0)).offset(-BOSS_EXTRUDE1_DEPTH_BACK)):
        with BuildLine():
            ThreePointArc((11.457577821, -3.352574307), (11.218050507, -4.083036471), (10.932007046, -4.796568142))
            ThreePointArc((10.932007046, -4.796568142), (11.35807948, -4.788969778), (11.781593724, -4.741734842))
            ThreePointArc((11.781593724, -4.741734842), (11.934096284, -4.34365582), (12.073152809, -3.940682842))
            ThreePointArc((12.073152809, -3.940682842), (11.779084107, -3.632269073), (11.457577821, -3.352574307))
        make_face()
    # profile 18 of 19: a face of its own
    with BuildSketch(Plane(origin=(11.1125, 0, 0), x_dir=(0, 0, -1), z_dir=(1, 0, 0)).offset(-BOSS_EXTRUDE1_DEPTH_BACK)):
        with BuildLine():
            ThreePointArc((11.781593724, 4.741734842), (11.35807948, 4.788969778), (10.932007046, 4.796568142))
            ThreePointArc((10.932007046, 4.796568142), (11.218050507, 4.083036471), (11.457577821, 3.352574307))
            ThreePointArc((11.457577821, 3.352574307), (11.779084107, 3.632269073), (12.073152809, 3.940682842))
            ThreePointArc((12.073152809, 3.940682842), (11.934096284, 4.34365582), (11.781593724, 4.741734842))
        make_face()
    # profile 19 of 19: a face of its own
    with BuildSketch(Plane(origin=(11.1125, 0, 0), x_dir=(0, 0, -1), z_dir=(1, 0, 0)).offset(-BOSS_EXTRUDE1_DEPTH_BACK)):
        with BuildLine():
            ThreePointArc((11.913249275, 0.768333072), (11.938, 0), (11.913249275, -0.768333072))
            ThreePointArc((11.913249275, -0.768333072), (12.311027604, -0.61546759), (12.692845514, -0.426230867))
            ThreePointArc((12.692845514, -0.426230867), (12.7, 0), (12.692845514, 0.426230867))
            ThreePointArc((12.692845514, 0.426230867), (12.311027604, 0.61546759), (11.913249275, 0.768333072))
        make_face()
    extrude(amount=BOSS_EXTRUDE1_DEPTH + BOSS_EXTRUDE1_DEPTH_BACK)

    # Sketch2 → Boss-Extrude2 (add)
    with BuildSketch(Plane(origin=(15.1125, 0, 0), x_dir=(0, 0, -1), z_dir=(1, 0, 0))):
        Circle(SKETCH2_R)
        Circle(SKETCH2_R_2, mode=Mode.SUBTRACT)
    extrude(amount=BOSS_EXTRUDE2_DEPTH)

    # Sketch3 → Boss-Extrude3 (add)
    with BuildSketch(Plane.ZY.offset(2.0875)):
        with Locations(Location((0, 0, 0), (0, 0, 180))):
            Circle(SKETCH3_R)
        Circle(SKETCH3_R_2, mode=Mode.SUBTRACT)
    extrude(amount=-BOSS_EXTRUDE3_DEPTH)

    # Sketch5 → Boss-Extrude4 (add, two sides: drawn at the far end of the back side and taken through both)
    with BuildSketch(Plane(origin=(15.1125, 0, 0), x_dir=(0, 0, -1), z_dir=(1, 0, 0)).offset(-BOSS_EXTRUDE4_DEPTH_BACK)):
        Circle(SKETCH5_R)
    extrude(amount=BOSS_EXTRUDE4_DEPTH + BOSS_EXTRUDE4_DEPTH_BACK)

    # Sketch4 → Cut-Extrude1 (cut, through all)
    with BuildSketch(Plane(origin=(16.6125, 0, 0), x_dir=(0, 0, -1), z_dir=(1, 0, 0))):
        Polygon((3.669006525, -6.481388055), (7.44754997, -0.06324117), (3.778543445, 6.418146885), (-3.669006525, 6.481388055), (-7.44754997, 0.06324117), (-3.778543445, -6.418146885), align=None)
    extrude(amount=-CUT_EXTRUDE1_DEPTH, mode=Mode.SUBTRACT)


solid = part.part
